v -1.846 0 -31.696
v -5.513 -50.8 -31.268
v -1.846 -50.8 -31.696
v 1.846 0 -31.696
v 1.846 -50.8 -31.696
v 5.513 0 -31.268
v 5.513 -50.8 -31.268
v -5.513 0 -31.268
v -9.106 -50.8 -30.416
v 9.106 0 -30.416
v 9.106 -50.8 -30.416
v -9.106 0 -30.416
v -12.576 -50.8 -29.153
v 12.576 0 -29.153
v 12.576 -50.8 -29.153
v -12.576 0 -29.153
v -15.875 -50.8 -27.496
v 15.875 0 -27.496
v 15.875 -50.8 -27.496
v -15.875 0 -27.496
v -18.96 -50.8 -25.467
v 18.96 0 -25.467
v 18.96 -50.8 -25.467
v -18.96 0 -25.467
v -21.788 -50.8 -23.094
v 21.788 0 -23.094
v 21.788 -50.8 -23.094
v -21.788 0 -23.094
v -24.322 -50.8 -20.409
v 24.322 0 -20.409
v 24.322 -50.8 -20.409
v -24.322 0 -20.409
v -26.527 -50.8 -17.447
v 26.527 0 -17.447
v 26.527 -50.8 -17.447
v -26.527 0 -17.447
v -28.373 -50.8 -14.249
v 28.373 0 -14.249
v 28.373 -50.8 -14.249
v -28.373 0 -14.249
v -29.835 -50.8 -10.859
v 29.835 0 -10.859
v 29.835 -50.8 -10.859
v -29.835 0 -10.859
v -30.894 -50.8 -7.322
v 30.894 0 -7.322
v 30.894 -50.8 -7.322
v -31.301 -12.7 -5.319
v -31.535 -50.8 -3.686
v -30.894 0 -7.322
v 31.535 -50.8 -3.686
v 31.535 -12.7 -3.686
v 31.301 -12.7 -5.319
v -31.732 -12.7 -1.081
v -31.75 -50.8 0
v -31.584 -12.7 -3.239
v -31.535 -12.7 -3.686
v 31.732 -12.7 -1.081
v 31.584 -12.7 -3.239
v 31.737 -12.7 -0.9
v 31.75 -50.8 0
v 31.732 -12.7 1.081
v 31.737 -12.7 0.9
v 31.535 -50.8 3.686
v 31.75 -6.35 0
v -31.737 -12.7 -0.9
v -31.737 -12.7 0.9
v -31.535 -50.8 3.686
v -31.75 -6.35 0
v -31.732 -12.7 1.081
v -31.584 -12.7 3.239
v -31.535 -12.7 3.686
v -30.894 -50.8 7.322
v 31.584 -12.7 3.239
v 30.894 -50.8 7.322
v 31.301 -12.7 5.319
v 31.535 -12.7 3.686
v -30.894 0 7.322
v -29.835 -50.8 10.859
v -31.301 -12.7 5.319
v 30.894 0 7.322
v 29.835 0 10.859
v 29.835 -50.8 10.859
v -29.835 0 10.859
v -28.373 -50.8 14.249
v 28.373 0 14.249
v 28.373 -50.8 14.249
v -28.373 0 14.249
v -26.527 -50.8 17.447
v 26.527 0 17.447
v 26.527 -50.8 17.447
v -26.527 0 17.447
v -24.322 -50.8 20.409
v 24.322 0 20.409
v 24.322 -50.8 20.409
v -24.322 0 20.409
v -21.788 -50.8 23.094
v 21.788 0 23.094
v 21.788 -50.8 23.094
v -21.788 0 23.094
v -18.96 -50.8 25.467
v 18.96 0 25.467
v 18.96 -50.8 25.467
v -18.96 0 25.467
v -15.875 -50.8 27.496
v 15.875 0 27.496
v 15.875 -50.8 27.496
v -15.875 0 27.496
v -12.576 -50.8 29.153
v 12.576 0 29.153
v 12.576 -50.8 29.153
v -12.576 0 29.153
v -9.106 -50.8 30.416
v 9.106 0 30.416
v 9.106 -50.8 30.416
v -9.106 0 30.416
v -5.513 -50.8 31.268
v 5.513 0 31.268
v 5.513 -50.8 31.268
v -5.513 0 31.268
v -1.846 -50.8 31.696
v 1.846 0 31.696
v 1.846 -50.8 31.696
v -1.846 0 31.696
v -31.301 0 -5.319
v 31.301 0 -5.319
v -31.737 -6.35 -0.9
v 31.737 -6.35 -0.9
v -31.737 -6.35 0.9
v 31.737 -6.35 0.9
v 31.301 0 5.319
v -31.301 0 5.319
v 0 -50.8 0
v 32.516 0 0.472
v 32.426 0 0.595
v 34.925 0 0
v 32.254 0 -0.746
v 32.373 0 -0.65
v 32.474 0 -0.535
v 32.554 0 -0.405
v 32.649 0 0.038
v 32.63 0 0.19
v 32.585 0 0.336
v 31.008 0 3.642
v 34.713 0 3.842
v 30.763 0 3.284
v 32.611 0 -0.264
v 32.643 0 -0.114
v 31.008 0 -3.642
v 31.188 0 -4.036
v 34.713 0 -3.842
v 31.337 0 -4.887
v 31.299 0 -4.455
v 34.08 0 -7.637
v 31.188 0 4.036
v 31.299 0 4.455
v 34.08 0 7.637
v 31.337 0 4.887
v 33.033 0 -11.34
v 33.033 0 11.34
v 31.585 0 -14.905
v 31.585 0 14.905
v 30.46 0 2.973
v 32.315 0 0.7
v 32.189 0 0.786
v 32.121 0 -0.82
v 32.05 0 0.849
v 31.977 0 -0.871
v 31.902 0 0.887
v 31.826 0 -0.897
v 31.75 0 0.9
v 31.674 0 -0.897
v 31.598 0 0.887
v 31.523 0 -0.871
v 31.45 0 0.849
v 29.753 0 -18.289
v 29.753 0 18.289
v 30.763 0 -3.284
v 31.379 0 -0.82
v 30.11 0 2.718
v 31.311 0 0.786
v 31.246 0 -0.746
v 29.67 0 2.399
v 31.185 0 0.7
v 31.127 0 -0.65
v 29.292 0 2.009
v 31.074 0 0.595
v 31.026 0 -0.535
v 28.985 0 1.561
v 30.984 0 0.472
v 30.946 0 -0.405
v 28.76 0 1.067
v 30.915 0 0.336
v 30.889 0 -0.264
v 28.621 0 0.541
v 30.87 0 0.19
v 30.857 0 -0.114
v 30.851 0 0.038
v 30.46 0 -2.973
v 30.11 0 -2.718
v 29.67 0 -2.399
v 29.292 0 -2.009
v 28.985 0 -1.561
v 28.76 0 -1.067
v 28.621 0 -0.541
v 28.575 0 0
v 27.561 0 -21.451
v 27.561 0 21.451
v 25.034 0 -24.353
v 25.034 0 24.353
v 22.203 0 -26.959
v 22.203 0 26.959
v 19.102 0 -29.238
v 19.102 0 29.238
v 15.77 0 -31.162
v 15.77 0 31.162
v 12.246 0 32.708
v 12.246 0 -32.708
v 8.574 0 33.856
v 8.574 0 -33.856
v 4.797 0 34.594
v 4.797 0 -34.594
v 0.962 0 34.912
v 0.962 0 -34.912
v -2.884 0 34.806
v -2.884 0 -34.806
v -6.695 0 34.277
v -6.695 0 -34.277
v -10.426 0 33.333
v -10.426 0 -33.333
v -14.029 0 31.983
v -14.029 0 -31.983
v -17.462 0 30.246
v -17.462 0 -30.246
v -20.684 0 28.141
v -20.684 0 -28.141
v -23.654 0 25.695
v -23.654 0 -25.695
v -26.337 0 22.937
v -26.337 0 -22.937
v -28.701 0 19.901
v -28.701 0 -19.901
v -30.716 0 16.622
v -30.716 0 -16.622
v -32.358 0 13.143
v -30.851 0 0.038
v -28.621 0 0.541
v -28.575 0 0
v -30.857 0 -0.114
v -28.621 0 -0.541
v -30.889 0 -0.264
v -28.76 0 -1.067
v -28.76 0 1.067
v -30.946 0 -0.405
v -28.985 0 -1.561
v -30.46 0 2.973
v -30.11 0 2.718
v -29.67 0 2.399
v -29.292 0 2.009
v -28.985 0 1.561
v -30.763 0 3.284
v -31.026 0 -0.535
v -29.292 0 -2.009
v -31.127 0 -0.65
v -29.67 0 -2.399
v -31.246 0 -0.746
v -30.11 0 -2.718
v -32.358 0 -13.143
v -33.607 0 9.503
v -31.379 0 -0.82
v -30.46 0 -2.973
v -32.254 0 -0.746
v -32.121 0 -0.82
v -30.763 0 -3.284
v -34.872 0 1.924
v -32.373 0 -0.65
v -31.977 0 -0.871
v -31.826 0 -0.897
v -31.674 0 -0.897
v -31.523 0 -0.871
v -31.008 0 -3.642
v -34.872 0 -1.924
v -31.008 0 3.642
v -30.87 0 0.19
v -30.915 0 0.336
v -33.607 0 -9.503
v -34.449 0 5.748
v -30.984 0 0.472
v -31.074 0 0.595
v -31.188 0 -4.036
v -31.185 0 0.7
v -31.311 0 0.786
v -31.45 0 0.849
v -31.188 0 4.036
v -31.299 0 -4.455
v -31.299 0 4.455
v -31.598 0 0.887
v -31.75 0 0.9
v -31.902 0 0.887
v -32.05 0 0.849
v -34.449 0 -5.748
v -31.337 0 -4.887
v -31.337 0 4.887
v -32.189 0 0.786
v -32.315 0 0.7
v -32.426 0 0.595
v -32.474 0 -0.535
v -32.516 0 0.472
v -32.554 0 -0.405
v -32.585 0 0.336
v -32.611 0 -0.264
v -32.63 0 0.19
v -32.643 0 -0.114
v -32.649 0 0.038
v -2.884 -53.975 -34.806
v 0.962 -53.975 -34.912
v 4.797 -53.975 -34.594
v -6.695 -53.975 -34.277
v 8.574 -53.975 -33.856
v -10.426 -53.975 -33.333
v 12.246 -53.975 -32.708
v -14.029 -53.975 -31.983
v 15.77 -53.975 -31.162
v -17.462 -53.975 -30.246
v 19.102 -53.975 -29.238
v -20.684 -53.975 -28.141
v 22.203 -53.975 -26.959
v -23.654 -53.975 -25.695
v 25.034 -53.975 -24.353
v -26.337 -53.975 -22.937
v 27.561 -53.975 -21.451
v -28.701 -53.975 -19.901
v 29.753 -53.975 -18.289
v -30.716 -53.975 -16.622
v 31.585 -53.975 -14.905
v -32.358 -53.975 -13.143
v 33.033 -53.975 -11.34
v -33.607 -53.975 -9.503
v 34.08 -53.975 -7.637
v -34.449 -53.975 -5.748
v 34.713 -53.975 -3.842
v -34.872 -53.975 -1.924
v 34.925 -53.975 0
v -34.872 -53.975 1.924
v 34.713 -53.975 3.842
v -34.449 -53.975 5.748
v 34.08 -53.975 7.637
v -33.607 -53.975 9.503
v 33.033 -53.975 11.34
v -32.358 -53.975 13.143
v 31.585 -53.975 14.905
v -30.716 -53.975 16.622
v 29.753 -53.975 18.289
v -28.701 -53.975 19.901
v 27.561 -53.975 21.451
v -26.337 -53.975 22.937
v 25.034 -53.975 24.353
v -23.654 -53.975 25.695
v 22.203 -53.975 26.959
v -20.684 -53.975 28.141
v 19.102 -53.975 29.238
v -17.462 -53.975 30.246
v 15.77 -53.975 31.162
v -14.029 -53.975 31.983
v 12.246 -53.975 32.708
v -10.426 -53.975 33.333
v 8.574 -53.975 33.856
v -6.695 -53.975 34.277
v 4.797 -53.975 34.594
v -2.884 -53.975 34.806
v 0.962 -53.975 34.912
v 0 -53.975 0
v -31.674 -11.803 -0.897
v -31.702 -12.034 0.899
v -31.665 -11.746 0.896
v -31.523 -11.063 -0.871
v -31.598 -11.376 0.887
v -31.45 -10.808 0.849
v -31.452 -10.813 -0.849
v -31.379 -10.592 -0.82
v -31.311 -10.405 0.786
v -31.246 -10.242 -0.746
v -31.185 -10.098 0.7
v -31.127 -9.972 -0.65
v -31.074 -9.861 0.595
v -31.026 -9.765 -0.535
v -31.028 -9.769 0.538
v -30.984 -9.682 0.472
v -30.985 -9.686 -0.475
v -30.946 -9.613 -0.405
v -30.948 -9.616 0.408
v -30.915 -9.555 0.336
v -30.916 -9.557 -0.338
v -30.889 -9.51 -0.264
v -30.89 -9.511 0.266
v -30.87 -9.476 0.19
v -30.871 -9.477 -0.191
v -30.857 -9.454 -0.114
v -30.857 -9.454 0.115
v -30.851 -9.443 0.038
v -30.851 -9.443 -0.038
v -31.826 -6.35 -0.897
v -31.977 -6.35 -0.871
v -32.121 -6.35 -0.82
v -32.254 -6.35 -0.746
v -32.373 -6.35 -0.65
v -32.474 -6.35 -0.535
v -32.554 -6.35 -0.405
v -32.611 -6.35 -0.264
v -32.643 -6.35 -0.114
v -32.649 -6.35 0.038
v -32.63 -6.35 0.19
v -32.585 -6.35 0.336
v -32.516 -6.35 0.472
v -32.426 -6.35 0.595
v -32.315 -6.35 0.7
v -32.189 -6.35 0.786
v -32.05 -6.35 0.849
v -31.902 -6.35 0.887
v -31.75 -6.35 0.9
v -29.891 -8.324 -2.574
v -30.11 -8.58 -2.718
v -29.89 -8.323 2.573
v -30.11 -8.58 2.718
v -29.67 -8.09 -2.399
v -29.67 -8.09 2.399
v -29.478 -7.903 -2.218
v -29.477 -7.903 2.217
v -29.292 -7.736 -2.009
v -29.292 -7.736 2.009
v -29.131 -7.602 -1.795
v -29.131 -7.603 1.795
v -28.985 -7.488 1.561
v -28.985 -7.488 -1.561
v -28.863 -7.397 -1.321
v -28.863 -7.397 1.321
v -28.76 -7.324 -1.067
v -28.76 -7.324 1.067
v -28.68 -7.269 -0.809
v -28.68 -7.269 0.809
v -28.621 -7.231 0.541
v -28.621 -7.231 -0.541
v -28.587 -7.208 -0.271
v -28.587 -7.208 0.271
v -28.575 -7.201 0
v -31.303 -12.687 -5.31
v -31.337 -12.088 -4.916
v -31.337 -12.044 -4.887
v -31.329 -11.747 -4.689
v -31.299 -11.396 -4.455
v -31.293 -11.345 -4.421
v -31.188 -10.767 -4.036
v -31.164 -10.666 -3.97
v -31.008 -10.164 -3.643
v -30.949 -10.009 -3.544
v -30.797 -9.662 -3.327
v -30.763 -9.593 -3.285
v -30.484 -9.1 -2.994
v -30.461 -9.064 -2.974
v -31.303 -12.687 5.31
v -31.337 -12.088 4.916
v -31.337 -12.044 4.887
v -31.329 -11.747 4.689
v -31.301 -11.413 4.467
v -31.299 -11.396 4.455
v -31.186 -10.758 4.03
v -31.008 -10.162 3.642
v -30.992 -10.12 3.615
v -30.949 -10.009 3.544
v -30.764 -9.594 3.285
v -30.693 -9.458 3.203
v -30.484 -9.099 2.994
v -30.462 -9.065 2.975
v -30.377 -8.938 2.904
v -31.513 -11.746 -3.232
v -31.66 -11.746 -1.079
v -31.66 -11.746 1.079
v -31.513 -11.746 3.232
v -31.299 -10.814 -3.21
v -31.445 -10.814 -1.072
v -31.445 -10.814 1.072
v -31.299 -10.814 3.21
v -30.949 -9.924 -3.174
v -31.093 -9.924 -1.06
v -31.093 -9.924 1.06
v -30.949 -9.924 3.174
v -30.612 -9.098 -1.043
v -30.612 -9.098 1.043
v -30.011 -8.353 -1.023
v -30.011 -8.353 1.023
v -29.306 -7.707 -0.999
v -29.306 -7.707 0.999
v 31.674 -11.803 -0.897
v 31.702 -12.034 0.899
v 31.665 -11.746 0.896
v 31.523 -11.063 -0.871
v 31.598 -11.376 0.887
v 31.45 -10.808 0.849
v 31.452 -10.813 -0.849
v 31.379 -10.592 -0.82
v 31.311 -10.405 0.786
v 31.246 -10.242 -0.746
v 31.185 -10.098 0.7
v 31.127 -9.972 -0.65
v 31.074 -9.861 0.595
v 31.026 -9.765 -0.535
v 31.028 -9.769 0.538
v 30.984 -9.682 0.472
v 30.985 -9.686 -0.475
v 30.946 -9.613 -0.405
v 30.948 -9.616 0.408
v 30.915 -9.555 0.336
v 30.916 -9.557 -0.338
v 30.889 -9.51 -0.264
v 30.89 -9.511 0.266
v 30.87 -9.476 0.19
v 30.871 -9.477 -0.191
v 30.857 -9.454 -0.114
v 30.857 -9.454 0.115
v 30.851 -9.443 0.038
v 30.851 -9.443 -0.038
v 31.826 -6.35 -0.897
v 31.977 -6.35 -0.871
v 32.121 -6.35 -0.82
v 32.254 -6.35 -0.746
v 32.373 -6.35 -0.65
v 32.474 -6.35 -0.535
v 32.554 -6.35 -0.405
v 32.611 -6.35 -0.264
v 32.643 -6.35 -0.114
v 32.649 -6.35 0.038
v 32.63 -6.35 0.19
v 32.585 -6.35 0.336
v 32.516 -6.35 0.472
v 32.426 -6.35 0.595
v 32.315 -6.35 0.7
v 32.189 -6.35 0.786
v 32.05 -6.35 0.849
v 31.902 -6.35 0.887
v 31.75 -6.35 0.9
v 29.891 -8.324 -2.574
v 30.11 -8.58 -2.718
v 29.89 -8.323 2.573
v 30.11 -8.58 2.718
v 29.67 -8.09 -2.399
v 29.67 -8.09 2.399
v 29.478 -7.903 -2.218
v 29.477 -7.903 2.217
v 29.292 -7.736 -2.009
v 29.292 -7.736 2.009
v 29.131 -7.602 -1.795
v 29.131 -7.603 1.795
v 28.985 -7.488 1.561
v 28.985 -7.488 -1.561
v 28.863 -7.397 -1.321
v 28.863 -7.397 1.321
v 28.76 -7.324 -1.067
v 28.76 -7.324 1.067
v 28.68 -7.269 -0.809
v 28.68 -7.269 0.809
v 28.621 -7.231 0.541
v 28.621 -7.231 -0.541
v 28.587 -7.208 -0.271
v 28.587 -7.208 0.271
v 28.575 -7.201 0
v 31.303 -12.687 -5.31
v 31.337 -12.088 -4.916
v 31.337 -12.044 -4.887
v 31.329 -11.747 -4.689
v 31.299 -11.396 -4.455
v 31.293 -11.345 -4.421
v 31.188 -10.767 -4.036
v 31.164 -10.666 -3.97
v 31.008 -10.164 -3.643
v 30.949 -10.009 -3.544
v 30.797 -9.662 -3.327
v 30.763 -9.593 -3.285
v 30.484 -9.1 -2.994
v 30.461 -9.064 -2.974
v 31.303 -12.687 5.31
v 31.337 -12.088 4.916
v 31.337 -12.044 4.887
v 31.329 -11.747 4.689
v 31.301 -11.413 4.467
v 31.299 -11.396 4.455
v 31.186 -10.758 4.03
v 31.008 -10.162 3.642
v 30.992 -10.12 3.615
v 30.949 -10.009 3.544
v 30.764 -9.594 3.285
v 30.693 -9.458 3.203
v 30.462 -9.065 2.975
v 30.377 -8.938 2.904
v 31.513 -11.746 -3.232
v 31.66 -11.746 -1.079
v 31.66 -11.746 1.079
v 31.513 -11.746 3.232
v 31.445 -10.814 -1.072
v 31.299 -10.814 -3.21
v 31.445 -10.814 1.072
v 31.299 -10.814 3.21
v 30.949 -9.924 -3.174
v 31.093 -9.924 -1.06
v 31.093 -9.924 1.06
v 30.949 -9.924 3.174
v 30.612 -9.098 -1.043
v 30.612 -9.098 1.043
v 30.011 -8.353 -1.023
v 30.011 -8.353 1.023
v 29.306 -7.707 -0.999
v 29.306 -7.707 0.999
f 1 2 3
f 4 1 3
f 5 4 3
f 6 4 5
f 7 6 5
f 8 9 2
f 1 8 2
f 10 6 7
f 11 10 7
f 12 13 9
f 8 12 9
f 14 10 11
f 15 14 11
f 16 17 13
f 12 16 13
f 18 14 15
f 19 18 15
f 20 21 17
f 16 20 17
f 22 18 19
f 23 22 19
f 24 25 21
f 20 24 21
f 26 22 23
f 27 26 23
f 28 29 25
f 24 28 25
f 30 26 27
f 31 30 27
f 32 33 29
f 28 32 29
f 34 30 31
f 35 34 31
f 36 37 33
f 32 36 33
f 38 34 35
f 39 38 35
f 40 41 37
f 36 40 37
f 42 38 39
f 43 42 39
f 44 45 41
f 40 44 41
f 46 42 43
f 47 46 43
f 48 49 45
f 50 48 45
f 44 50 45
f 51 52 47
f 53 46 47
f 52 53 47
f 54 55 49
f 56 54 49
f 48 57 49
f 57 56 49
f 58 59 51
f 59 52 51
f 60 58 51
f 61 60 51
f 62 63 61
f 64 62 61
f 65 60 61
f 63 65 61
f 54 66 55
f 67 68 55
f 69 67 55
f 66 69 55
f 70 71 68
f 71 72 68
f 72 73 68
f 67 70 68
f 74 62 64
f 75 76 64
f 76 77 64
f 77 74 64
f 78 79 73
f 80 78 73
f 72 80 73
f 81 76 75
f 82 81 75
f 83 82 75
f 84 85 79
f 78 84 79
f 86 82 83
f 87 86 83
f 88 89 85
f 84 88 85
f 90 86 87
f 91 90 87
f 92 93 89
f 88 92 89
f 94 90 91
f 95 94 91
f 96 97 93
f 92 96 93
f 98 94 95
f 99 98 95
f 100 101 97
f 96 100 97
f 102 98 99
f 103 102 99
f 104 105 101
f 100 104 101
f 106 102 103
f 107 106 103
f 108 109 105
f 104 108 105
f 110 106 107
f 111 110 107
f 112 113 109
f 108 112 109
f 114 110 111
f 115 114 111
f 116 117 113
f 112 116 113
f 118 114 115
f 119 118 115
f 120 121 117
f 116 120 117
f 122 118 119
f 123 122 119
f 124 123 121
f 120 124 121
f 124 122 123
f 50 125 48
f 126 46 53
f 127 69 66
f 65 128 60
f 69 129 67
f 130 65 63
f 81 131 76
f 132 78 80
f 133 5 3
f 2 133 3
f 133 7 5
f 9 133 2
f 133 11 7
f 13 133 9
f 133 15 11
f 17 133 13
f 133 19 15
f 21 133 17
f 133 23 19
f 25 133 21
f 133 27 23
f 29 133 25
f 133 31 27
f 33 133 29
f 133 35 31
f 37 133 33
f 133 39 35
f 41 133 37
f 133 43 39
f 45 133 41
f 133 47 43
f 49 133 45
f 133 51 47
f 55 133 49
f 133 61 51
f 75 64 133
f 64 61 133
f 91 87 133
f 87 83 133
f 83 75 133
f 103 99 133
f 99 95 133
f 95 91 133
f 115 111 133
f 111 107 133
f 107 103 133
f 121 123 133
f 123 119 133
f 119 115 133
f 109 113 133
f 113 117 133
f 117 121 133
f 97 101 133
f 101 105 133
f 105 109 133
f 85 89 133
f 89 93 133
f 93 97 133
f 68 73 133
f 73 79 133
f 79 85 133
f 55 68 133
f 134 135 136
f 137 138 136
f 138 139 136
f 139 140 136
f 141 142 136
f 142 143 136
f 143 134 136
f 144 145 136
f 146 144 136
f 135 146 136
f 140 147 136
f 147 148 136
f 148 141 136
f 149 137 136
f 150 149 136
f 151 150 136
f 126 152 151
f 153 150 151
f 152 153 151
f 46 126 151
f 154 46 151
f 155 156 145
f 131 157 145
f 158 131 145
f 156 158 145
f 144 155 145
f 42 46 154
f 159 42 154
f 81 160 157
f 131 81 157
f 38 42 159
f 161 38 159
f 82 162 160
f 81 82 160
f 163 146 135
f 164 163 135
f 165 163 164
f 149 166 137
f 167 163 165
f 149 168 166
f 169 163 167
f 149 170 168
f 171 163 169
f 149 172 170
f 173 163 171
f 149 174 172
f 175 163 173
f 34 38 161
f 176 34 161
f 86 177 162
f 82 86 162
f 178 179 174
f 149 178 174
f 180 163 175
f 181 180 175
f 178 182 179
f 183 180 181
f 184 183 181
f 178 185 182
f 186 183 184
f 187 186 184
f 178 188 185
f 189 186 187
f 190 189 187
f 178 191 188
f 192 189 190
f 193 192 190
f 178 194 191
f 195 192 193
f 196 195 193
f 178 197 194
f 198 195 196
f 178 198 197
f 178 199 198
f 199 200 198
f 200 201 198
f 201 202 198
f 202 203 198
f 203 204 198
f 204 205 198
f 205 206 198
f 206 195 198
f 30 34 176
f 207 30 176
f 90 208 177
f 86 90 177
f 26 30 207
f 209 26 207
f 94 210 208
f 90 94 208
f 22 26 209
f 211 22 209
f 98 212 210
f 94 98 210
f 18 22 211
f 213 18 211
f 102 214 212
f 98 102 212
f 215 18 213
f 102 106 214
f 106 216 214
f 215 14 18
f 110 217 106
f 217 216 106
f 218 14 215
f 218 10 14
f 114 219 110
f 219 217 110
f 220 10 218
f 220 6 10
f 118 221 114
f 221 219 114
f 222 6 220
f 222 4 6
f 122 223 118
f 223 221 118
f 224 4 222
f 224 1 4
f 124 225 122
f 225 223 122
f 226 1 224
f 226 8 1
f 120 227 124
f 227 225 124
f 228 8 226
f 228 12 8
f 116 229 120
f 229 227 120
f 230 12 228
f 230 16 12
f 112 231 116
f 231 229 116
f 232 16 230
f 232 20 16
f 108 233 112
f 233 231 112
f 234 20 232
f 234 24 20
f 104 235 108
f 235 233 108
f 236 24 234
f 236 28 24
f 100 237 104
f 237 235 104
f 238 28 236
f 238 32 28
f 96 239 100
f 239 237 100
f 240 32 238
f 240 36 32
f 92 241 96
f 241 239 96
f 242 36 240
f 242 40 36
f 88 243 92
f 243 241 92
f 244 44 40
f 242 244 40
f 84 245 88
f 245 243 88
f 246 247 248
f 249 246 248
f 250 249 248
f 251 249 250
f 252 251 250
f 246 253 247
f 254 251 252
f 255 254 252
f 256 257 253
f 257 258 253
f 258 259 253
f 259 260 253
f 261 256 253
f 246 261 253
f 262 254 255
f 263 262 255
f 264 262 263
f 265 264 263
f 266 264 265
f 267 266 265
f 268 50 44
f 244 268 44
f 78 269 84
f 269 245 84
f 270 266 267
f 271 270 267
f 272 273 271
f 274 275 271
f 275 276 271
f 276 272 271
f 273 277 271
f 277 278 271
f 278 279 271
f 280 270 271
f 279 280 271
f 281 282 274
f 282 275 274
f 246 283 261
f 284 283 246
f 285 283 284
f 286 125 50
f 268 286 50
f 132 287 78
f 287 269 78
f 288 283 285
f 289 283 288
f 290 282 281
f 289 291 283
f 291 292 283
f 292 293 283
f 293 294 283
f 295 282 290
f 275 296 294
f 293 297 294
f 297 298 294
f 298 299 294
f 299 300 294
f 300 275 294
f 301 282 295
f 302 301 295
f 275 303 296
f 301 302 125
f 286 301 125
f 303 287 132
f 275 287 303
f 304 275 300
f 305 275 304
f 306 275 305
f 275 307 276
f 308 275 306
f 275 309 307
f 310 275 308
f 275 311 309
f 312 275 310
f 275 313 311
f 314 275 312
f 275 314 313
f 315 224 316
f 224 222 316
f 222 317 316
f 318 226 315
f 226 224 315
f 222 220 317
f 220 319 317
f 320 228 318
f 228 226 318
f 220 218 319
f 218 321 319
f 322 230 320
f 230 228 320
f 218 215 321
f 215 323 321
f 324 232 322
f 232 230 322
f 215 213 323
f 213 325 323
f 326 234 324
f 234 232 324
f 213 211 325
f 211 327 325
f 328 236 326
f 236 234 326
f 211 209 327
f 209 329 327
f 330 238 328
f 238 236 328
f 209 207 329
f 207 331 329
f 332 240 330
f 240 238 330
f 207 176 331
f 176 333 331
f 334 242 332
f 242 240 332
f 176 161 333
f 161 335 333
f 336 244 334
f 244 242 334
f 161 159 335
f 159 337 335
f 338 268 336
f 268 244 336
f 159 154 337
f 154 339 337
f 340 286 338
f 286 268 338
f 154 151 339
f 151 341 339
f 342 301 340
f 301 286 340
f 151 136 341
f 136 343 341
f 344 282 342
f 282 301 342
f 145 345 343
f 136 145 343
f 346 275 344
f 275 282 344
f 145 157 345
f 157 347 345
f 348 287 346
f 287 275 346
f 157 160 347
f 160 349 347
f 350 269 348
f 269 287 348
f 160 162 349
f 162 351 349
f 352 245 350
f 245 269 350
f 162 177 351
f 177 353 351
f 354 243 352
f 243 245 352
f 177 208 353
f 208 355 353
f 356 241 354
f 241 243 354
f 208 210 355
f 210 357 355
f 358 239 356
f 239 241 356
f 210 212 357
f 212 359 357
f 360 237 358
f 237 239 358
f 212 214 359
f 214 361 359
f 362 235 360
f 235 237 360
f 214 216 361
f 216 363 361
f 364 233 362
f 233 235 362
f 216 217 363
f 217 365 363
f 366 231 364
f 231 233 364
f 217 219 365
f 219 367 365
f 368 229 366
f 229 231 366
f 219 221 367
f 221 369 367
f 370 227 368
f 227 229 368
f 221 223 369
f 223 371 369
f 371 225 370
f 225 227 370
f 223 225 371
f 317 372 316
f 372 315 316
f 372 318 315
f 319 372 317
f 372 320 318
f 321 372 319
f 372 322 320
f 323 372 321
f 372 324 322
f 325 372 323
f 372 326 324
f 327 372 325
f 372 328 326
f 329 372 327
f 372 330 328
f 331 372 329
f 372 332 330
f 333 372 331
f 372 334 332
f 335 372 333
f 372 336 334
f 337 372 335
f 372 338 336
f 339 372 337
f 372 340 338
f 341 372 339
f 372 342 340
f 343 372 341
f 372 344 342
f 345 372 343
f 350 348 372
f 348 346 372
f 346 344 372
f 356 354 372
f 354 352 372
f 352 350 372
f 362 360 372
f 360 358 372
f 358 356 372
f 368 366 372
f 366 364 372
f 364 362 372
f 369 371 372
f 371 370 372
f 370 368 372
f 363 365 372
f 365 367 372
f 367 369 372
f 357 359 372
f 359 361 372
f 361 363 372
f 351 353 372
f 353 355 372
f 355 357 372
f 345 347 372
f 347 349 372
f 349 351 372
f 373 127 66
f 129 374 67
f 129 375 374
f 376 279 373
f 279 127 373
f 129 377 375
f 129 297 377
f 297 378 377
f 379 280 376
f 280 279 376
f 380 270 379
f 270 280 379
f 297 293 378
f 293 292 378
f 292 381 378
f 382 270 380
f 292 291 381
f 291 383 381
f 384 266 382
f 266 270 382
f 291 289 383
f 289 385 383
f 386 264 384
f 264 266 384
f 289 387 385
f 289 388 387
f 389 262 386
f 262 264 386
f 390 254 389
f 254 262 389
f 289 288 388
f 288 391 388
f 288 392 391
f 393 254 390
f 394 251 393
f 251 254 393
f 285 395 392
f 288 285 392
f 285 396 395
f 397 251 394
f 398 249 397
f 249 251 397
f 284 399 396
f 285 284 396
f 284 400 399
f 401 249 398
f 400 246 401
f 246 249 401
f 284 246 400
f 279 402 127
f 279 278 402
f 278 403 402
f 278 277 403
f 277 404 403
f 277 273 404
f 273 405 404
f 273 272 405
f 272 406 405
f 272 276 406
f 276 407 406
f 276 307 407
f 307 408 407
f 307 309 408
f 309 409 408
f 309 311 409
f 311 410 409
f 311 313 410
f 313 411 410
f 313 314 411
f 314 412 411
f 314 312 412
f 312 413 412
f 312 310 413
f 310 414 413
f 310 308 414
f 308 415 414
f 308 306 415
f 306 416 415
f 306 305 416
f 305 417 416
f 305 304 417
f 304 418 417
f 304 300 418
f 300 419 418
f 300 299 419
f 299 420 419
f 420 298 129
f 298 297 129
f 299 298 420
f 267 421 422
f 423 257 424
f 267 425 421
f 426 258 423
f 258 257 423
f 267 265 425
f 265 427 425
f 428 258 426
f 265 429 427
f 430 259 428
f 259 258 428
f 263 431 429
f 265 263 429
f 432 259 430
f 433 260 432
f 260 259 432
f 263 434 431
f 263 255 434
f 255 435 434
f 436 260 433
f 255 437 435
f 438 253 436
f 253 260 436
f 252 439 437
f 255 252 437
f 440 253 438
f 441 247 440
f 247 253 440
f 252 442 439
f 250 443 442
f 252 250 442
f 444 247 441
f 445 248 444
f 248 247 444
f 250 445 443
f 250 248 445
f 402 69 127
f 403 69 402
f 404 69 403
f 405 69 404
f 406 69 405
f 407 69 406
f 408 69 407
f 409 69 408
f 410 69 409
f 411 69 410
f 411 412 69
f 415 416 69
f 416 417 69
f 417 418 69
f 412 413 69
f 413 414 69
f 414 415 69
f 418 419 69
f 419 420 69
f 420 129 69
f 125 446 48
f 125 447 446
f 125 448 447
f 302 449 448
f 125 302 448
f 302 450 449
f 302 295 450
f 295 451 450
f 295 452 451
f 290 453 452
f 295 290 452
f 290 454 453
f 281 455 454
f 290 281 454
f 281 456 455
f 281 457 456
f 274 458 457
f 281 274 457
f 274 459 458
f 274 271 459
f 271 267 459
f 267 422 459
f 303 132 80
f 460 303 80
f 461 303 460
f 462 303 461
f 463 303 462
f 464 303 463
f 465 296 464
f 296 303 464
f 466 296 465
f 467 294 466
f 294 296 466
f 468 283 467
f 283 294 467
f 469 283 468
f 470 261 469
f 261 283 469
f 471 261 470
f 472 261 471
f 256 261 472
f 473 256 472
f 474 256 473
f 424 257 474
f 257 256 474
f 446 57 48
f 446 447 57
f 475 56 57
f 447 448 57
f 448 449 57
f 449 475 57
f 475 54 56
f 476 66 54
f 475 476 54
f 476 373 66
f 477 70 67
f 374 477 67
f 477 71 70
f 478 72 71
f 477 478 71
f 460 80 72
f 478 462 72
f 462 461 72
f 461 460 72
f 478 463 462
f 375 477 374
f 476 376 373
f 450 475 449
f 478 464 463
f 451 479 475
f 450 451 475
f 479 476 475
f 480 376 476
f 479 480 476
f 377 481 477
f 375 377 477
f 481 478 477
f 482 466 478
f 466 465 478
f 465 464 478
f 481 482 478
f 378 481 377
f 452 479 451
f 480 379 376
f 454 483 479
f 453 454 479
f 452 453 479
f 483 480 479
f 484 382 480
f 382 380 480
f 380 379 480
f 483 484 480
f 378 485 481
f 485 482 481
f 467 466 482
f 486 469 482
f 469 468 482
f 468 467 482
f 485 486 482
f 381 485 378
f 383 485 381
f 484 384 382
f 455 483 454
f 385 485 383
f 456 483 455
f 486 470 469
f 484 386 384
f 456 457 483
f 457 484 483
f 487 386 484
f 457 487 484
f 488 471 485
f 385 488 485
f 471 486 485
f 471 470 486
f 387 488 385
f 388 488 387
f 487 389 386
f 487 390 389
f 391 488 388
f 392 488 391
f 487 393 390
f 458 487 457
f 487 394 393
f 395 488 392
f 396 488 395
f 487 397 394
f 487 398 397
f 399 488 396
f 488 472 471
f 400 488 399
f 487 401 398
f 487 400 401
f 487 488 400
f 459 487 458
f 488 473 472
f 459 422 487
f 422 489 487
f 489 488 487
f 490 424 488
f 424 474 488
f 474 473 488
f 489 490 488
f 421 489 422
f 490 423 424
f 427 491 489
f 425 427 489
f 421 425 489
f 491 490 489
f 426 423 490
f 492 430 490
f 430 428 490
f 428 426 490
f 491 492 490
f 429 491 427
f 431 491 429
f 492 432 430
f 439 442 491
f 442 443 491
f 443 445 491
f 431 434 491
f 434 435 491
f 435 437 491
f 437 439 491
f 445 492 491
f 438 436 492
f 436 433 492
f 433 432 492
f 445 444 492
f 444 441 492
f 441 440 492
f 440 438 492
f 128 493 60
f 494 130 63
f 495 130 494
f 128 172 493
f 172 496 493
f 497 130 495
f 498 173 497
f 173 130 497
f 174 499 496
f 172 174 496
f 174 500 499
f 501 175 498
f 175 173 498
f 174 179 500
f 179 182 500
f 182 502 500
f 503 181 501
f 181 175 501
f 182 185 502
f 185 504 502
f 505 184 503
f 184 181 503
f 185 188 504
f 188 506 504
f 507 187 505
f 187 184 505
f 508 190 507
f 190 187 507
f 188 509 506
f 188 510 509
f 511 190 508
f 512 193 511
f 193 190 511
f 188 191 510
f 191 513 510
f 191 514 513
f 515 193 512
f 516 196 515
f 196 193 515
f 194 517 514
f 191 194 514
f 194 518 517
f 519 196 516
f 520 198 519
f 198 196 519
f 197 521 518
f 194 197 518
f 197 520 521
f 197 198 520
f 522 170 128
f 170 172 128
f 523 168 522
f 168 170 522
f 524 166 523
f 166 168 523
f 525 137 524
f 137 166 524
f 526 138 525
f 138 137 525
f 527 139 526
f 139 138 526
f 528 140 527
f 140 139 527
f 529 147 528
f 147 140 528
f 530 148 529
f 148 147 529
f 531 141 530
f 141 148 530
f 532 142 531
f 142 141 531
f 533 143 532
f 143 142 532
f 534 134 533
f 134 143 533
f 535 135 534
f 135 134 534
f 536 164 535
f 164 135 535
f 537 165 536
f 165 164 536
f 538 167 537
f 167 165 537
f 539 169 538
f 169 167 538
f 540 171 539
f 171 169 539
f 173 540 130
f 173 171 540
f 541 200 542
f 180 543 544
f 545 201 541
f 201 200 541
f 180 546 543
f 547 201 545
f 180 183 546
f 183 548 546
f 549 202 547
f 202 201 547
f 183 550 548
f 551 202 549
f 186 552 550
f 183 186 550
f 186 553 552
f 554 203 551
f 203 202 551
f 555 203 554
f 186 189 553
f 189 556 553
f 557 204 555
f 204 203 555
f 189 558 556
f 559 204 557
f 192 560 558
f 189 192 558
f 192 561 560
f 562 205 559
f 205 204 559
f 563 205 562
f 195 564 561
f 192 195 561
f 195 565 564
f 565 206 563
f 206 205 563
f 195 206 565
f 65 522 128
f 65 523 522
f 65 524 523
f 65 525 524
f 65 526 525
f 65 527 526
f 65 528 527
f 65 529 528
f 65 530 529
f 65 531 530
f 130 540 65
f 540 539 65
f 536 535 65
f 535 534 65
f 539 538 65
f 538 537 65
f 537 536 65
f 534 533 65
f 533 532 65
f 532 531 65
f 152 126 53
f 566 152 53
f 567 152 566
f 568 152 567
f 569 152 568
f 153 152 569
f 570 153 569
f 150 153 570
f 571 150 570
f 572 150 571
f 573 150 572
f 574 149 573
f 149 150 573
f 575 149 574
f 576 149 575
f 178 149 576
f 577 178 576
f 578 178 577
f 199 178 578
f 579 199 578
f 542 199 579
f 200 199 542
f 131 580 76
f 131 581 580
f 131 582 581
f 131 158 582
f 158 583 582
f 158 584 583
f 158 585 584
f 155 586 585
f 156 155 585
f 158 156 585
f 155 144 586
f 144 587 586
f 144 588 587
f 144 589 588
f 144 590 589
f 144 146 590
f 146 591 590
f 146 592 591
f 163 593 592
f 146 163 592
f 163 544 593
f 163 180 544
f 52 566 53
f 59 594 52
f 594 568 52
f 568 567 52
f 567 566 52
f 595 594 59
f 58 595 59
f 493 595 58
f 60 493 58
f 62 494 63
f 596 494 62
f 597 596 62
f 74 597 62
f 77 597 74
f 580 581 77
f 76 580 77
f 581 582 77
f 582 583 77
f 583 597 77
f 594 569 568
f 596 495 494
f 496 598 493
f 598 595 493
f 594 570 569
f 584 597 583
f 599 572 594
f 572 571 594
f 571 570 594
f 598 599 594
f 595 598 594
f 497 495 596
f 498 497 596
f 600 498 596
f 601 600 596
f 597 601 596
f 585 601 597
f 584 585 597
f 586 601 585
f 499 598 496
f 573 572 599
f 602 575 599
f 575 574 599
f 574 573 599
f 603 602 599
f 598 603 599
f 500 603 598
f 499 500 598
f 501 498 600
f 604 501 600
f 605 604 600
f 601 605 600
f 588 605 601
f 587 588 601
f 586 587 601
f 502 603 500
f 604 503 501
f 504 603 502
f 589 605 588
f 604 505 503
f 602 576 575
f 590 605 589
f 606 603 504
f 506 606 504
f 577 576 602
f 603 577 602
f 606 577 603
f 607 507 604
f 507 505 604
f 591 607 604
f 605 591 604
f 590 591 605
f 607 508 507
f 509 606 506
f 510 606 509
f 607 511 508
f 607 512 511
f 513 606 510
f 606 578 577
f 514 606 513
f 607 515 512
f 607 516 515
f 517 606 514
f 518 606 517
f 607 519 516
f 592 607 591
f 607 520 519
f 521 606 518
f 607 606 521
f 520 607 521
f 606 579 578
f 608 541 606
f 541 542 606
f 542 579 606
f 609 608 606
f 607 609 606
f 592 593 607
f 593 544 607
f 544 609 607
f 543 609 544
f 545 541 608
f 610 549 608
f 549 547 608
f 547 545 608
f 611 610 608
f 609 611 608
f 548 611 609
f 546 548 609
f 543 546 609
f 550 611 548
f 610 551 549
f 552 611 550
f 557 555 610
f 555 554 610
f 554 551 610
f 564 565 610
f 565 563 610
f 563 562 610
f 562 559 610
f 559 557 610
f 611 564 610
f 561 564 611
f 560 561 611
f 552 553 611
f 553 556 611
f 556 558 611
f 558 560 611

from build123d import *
from build123d.topology import SkipClean

# Parameters (mm, degrees)
SKETCH2_R               = 3.175
SKETCH2_R_2             = 0.9
BOSS_EXTRUDE1_DEPTH     = 6.35
CUT_EXTRUDE1_DEPTH      = 6.35
FILLET1_R               = 2.54
FILLET2_START           = -7.200738553
FILLET2_DEPTH           = 0.850738553
FILLET2_START_2         = -12.7000001
FILLET2_2_DEPTH         = 5.499261547
CUT_EXTRUDE2_DEPTH      = 74.162913344
CUT_EXTRUDE2_DEPTH_BACK = 74.162913344
SKETCH4_W               = 34.925
SKETCH4_H               = 69.85


with BuildPart() as part:
    # Sketch1 → Revolve1 (revolve)
    with BuildSketch(Plane.XY, mode=Mode.PRIVATE) as revolve1_sk:
        Polygon((0, -50.8), (-31.75, -50.8), (-31.75, 0), (-34.925, 0), (-34.925, -53.975), (0, -53.975), align=None)
    revolve(revolve1_sk.sketch.rotate(Axis((0, -53.975, 0), (0, 1, 0)), 180), axis=Axis((0, -53.975, 0), (0, 1, 0)))

    # Sketch2 → Boss-Extrude1 (add)
    with BuildSketch(Plane(origin=(0, 0, 0), x_dir=(1, 0, 0), z_dir=(0, 1, 0))):
        with Locations((-31.75, 0)):
            Circle(SKETCH2_R)
        with Locations((-31.75, 0)):
            Circle(SKETCH2_R_2, mode=Mode.SUBTRACT)
    extrude(amount=-BOSS_EXTRUDE1_DEPTH)

    # Sketch3 → Cut-Extrude1 (cut)
    with BuildSketch(Plane(origin=(0, 0, 0), x_dir=(1, 0, 0), z_dir=(0, 1, 0))):
        with BuildLine():
            ThreePointArc((-31.737244094, -0.899909599), (-30.85, 0), (-31.737244094, 0.899909599))
            ThreePointArc((-31.737244094, 0.899909599), (-32.65, 0), (-31.737244094, -0.899909599))
        make_face()
    extrude(amount=-CUT_EXTRUDE1_DEPTH, mode=Mode.SUBTRACT)

    # Fillet1
    fillet1_edges = [part.edges().sort_by_distance(p)[0] for p in [
        (-31.59125, -3.175, -3.171028766),
        (-31.59125, -3.175, 3.171028766),
    ]]
    fillet(fillet1_edges, radius=FILLET1_R)

    # Fillet2: read off the stored shape, not the designer's step
    # Fillet2 outline → Fillet2 (add)
    with BuildSketch(Plane(origin=(0, 0, 0), x_dir=(1, 0, 0), z_dir=(0, 1, 0)).offset(FILLET2_START)):
        with BuildLine():
            ThreePointArc((-31.737244094, 0.899909599), (-30.85, 0), (-31.737244094, -0.899909599))
            ThreePointArc((-31.737244094, -0.899909599), (-31.59663833, -3.116880855), (-31.301358696, -5.318594157))
            ThreePointArc((-31.301358696, -5.318594157), (-31.106269167, -3.834791697), (-30.109583333, -2.718392569))
            ThreePointArc((-30.109583333, -2.718392569), (-28.575, 0), (-30.109583333, 2.718392569))
            ThreePointArc((-30.109583333, 2.718392569), (-31.106269167, 3.834791697), (-31.301358696, 5.318594157))
            ThreePointArc((-31.301358696, 5.318594157), (-31.59663833, 3.116880855), (-31.737244094, 0.899909599))
        make_face()
    extrude(amount=FILLET2_DEPTH)

    # Fillet2 2 outline → Fillet2 2 (add)
    with BuildSketch(Plane(origin=(0, 0, 0), x_dir=(1, 0, 0), z_dir=(0, 1, 0)).offset(FILLET2_START_2)):
        with BuildLine():
            ThreePointArc((-31.737244094, 0.899909599), (-30.85, 0), (-31.737244094, -0.899909599))
            ThreePointArc((-31.737244094, -0.899909599), (-31.59663833, -3.116880855), (-31.301358695, -5.318594158))
            ThreePointArc((-31.301358695, -5.318594158), (-31.106269167, -3.834791697), (-30.109583333, -2.718392569))
            ThreePointArc((-30.109583333, -2.718392569), (-28.575, 0), (-30.109583333, 2.718392569))
            ThreePointArc((-30.109583333, 2.718392569), (-31.106269167, 3.834791697), (-31.301358696, 5.318594157))
            ThreePointArc((-31.301358696, 5.318594157), (-31.59663833, 3.116880854), (-31.737244094, 0.899909599))
        make_face()
    extrude(amount=FILLET2_2_DEPTH)

    # Fillet2 3 outline → Fillet2 3 (revolve, cut)
    with BuildSketch(Plane.XY):
        with BuildLine():
            Line((28.575, -12.7000001), (31.75, -12.7))
            ThreePointArc((31.75, -12.7), (30.899261314, -9.525), (28.575, -7.200738685))
            Line((28.575, -7.200738685), (28.575, -12.7000001))
        make_face()
    revolve(axis=Axis((0, 0, 0), (0, 1, 0)), mode=Mode.SUBTRACT)

    # Sketch4 → Cut-Extrude2 (cut, two sides: drawn at the far end of the back side and taken through both)
    with BuildSketch(Plane(origin=(0, 0, 0), x_dir=(1, 0, 0), z_dir=(0, 1, 0)).offset(-CUT_EXTRUDE2_DEPTH_BACK)):
        with Locations((17.4625, 0)):
            Rectangle(SKETCH4_W, SKETCH4_H)
    extrude(amount=CUT_EXTRUDE2_DEPTH + CUT_EXTRUDE2_DEPTH_BACK, mode=Mode.SUBTRACT)

    # Mirror1: part across plane


with BuildPart() as part_1:
    with SkipClean():  # the faces are left unmerged after this step: merging them gives an invalid solid
        add(part.part)
        add(part.part.mirror(Plane(origin=(0, -53.975, 34.925), x_dir=(0, 0, 1), z_dir=(-1, 0, 0))))


solid = part_1.part
